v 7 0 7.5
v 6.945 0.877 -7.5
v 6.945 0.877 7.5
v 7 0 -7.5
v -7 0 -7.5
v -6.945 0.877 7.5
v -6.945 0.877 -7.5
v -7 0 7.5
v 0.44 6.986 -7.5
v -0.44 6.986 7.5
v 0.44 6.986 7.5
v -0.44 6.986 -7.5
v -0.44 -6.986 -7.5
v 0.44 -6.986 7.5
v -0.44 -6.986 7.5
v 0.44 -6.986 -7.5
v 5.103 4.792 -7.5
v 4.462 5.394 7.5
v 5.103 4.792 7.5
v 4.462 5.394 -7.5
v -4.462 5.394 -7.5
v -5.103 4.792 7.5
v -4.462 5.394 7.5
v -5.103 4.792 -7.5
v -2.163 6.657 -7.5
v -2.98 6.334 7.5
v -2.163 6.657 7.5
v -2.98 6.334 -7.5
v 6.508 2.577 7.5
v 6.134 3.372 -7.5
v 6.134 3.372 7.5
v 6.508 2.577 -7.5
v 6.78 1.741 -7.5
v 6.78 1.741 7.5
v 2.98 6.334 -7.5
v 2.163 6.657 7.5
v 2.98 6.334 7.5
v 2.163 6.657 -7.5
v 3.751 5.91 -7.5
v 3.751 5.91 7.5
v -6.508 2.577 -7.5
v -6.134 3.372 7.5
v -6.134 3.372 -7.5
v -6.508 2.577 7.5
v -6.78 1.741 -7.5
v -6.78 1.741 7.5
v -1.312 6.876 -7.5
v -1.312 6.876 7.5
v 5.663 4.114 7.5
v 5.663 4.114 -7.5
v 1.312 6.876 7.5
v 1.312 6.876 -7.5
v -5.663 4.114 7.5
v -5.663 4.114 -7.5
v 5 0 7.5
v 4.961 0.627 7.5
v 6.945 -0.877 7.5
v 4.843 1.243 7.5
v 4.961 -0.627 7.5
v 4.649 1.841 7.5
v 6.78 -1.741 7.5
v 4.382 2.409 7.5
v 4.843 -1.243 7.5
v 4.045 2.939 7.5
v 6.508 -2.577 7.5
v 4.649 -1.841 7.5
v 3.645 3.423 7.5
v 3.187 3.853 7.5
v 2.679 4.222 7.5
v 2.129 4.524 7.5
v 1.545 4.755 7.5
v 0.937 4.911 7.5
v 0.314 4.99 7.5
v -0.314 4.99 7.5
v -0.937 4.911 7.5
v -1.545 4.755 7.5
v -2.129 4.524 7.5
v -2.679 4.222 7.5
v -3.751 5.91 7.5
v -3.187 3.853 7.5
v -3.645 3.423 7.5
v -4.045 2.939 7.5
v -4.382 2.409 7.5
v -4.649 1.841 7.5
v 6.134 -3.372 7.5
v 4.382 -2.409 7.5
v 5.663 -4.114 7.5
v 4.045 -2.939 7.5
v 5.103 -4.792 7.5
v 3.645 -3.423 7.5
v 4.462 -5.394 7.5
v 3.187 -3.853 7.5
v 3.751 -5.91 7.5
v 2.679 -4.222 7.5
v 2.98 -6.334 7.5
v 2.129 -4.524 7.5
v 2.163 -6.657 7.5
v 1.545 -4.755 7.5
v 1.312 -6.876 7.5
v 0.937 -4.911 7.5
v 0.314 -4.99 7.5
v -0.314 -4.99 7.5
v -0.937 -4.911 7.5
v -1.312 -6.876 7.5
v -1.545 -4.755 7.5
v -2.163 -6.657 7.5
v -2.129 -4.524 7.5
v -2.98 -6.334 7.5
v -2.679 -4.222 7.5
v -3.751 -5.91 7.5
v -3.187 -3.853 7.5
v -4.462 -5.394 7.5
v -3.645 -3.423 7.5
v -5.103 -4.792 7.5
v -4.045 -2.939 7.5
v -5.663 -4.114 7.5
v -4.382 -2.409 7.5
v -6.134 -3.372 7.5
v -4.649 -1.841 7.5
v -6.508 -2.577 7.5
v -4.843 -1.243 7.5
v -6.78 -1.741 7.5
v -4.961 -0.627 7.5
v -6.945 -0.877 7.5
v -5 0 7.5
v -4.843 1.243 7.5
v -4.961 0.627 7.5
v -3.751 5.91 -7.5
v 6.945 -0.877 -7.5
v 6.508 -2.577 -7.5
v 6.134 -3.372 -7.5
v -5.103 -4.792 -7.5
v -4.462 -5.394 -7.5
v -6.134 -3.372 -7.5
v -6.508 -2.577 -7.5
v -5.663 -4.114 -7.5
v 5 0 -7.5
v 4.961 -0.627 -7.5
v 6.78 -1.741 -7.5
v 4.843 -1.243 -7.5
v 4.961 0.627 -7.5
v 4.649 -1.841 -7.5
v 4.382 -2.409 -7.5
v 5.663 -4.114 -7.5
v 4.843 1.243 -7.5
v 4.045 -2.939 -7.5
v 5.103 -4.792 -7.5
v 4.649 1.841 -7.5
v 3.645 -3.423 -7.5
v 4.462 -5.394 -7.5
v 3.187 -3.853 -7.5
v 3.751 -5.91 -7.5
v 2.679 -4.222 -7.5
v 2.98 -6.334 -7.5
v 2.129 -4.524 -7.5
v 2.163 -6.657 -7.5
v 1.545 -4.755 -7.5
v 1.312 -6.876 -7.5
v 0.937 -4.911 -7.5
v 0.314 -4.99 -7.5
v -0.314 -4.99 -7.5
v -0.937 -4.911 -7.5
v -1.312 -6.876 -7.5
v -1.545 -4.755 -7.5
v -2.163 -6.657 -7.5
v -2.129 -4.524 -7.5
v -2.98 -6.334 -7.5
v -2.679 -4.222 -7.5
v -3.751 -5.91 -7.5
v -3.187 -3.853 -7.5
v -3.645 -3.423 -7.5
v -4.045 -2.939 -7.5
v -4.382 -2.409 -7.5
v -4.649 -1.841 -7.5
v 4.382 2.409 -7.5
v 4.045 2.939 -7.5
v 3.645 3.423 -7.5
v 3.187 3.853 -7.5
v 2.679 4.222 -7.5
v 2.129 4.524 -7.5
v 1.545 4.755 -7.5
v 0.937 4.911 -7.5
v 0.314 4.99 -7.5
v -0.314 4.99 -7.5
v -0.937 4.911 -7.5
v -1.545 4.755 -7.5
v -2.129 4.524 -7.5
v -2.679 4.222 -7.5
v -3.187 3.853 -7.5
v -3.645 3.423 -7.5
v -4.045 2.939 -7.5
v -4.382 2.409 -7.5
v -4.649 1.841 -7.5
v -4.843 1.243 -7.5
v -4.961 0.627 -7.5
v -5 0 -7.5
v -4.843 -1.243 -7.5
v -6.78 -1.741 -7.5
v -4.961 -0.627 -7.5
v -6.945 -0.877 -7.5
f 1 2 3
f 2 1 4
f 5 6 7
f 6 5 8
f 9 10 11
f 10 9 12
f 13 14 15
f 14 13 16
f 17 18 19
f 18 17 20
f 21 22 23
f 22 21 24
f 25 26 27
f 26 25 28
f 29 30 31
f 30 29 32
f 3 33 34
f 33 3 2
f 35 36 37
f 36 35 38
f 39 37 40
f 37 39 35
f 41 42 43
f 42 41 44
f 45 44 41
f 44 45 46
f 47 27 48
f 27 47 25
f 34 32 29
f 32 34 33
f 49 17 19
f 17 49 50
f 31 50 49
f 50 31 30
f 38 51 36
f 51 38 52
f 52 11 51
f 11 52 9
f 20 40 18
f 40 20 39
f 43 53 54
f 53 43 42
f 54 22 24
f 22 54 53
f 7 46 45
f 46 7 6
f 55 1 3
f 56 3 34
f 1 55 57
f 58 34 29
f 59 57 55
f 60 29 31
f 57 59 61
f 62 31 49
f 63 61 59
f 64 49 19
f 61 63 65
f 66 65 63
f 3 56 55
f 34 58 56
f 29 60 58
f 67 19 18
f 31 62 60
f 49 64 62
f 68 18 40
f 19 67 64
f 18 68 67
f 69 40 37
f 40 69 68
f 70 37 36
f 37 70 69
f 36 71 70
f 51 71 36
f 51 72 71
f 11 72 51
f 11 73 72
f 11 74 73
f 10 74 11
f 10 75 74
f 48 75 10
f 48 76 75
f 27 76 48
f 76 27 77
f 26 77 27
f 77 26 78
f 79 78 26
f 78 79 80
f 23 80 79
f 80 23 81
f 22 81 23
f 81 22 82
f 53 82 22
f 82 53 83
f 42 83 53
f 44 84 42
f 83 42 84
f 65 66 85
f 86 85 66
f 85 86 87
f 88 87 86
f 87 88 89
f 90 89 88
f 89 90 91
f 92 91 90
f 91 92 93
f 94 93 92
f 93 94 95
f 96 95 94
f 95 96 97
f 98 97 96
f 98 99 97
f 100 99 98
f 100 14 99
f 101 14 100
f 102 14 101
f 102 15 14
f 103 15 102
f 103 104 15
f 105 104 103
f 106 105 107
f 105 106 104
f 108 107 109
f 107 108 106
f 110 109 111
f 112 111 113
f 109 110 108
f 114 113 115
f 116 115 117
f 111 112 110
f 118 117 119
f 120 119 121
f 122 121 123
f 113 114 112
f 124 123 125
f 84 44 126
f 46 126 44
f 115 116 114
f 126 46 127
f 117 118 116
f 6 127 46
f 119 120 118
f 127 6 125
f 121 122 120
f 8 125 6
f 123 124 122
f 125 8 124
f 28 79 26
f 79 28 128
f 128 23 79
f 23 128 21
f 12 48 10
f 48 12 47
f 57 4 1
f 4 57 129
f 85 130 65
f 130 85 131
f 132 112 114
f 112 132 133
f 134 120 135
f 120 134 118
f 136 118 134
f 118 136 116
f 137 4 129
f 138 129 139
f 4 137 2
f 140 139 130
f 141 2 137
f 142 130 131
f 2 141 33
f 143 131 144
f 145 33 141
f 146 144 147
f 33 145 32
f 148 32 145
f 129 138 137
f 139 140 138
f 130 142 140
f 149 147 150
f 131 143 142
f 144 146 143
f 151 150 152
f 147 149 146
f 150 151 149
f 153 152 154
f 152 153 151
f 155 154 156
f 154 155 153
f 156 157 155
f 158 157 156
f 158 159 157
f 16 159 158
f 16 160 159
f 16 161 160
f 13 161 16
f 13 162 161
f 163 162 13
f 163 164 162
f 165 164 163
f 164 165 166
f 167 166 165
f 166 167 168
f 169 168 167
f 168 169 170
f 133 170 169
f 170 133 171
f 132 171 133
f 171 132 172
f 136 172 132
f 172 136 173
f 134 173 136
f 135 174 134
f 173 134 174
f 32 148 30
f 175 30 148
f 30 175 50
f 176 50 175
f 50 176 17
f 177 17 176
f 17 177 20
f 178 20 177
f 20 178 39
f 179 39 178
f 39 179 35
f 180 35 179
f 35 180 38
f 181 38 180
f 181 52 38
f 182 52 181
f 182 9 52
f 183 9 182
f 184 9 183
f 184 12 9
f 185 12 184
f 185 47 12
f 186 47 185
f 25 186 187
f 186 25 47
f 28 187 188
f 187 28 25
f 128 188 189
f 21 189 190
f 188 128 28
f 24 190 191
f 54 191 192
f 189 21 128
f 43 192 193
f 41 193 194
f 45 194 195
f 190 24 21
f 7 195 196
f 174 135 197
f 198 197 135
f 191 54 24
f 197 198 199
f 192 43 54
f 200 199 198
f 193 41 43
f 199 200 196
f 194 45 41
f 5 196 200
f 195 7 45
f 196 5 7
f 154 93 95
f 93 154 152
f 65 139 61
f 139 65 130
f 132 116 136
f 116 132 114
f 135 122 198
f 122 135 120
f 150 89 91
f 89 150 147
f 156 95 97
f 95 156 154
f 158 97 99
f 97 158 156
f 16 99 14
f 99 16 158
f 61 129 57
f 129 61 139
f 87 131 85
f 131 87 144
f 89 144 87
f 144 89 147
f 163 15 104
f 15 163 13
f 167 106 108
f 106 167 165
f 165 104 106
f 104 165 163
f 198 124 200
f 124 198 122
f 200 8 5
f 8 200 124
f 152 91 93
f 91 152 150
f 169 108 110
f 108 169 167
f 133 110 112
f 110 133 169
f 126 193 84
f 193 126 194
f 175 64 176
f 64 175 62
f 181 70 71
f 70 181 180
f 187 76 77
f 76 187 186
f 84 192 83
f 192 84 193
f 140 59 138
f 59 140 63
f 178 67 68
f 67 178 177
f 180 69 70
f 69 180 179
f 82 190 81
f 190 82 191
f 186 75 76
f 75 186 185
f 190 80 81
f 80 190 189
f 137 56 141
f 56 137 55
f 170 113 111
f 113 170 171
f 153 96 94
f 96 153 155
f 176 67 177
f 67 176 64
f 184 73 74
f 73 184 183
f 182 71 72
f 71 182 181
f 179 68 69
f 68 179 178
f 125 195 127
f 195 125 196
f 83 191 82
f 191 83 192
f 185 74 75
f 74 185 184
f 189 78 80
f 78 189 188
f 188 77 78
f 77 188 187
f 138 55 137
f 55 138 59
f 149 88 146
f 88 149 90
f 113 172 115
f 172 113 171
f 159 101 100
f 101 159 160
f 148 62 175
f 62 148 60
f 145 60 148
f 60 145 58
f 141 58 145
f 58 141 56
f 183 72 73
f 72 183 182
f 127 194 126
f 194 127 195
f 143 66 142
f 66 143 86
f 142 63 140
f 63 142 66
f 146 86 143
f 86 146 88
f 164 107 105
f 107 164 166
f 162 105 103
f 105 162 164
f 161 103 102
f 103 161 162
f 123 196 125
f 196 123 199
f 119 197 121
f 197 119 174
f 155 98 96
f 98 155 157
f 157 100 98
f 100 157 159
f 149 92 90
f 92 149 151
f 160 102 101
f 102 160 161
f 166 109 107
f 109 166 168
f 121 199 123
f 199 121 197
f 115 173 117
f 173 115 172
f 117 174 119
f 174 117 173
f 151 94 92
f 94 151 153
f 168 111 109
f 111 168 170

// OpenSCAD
$fn = 50;


difference() {
	union() {
		translate(v = [0, 0, -7.5000000000]) {
			cylinder(h = 15, r = 7.0000000000);
		}
	}
	union() {
		translate(v = [0, 0, -100.0000000000]) {
			cylinder(h = 200, r = 5);
		}
	}
}
